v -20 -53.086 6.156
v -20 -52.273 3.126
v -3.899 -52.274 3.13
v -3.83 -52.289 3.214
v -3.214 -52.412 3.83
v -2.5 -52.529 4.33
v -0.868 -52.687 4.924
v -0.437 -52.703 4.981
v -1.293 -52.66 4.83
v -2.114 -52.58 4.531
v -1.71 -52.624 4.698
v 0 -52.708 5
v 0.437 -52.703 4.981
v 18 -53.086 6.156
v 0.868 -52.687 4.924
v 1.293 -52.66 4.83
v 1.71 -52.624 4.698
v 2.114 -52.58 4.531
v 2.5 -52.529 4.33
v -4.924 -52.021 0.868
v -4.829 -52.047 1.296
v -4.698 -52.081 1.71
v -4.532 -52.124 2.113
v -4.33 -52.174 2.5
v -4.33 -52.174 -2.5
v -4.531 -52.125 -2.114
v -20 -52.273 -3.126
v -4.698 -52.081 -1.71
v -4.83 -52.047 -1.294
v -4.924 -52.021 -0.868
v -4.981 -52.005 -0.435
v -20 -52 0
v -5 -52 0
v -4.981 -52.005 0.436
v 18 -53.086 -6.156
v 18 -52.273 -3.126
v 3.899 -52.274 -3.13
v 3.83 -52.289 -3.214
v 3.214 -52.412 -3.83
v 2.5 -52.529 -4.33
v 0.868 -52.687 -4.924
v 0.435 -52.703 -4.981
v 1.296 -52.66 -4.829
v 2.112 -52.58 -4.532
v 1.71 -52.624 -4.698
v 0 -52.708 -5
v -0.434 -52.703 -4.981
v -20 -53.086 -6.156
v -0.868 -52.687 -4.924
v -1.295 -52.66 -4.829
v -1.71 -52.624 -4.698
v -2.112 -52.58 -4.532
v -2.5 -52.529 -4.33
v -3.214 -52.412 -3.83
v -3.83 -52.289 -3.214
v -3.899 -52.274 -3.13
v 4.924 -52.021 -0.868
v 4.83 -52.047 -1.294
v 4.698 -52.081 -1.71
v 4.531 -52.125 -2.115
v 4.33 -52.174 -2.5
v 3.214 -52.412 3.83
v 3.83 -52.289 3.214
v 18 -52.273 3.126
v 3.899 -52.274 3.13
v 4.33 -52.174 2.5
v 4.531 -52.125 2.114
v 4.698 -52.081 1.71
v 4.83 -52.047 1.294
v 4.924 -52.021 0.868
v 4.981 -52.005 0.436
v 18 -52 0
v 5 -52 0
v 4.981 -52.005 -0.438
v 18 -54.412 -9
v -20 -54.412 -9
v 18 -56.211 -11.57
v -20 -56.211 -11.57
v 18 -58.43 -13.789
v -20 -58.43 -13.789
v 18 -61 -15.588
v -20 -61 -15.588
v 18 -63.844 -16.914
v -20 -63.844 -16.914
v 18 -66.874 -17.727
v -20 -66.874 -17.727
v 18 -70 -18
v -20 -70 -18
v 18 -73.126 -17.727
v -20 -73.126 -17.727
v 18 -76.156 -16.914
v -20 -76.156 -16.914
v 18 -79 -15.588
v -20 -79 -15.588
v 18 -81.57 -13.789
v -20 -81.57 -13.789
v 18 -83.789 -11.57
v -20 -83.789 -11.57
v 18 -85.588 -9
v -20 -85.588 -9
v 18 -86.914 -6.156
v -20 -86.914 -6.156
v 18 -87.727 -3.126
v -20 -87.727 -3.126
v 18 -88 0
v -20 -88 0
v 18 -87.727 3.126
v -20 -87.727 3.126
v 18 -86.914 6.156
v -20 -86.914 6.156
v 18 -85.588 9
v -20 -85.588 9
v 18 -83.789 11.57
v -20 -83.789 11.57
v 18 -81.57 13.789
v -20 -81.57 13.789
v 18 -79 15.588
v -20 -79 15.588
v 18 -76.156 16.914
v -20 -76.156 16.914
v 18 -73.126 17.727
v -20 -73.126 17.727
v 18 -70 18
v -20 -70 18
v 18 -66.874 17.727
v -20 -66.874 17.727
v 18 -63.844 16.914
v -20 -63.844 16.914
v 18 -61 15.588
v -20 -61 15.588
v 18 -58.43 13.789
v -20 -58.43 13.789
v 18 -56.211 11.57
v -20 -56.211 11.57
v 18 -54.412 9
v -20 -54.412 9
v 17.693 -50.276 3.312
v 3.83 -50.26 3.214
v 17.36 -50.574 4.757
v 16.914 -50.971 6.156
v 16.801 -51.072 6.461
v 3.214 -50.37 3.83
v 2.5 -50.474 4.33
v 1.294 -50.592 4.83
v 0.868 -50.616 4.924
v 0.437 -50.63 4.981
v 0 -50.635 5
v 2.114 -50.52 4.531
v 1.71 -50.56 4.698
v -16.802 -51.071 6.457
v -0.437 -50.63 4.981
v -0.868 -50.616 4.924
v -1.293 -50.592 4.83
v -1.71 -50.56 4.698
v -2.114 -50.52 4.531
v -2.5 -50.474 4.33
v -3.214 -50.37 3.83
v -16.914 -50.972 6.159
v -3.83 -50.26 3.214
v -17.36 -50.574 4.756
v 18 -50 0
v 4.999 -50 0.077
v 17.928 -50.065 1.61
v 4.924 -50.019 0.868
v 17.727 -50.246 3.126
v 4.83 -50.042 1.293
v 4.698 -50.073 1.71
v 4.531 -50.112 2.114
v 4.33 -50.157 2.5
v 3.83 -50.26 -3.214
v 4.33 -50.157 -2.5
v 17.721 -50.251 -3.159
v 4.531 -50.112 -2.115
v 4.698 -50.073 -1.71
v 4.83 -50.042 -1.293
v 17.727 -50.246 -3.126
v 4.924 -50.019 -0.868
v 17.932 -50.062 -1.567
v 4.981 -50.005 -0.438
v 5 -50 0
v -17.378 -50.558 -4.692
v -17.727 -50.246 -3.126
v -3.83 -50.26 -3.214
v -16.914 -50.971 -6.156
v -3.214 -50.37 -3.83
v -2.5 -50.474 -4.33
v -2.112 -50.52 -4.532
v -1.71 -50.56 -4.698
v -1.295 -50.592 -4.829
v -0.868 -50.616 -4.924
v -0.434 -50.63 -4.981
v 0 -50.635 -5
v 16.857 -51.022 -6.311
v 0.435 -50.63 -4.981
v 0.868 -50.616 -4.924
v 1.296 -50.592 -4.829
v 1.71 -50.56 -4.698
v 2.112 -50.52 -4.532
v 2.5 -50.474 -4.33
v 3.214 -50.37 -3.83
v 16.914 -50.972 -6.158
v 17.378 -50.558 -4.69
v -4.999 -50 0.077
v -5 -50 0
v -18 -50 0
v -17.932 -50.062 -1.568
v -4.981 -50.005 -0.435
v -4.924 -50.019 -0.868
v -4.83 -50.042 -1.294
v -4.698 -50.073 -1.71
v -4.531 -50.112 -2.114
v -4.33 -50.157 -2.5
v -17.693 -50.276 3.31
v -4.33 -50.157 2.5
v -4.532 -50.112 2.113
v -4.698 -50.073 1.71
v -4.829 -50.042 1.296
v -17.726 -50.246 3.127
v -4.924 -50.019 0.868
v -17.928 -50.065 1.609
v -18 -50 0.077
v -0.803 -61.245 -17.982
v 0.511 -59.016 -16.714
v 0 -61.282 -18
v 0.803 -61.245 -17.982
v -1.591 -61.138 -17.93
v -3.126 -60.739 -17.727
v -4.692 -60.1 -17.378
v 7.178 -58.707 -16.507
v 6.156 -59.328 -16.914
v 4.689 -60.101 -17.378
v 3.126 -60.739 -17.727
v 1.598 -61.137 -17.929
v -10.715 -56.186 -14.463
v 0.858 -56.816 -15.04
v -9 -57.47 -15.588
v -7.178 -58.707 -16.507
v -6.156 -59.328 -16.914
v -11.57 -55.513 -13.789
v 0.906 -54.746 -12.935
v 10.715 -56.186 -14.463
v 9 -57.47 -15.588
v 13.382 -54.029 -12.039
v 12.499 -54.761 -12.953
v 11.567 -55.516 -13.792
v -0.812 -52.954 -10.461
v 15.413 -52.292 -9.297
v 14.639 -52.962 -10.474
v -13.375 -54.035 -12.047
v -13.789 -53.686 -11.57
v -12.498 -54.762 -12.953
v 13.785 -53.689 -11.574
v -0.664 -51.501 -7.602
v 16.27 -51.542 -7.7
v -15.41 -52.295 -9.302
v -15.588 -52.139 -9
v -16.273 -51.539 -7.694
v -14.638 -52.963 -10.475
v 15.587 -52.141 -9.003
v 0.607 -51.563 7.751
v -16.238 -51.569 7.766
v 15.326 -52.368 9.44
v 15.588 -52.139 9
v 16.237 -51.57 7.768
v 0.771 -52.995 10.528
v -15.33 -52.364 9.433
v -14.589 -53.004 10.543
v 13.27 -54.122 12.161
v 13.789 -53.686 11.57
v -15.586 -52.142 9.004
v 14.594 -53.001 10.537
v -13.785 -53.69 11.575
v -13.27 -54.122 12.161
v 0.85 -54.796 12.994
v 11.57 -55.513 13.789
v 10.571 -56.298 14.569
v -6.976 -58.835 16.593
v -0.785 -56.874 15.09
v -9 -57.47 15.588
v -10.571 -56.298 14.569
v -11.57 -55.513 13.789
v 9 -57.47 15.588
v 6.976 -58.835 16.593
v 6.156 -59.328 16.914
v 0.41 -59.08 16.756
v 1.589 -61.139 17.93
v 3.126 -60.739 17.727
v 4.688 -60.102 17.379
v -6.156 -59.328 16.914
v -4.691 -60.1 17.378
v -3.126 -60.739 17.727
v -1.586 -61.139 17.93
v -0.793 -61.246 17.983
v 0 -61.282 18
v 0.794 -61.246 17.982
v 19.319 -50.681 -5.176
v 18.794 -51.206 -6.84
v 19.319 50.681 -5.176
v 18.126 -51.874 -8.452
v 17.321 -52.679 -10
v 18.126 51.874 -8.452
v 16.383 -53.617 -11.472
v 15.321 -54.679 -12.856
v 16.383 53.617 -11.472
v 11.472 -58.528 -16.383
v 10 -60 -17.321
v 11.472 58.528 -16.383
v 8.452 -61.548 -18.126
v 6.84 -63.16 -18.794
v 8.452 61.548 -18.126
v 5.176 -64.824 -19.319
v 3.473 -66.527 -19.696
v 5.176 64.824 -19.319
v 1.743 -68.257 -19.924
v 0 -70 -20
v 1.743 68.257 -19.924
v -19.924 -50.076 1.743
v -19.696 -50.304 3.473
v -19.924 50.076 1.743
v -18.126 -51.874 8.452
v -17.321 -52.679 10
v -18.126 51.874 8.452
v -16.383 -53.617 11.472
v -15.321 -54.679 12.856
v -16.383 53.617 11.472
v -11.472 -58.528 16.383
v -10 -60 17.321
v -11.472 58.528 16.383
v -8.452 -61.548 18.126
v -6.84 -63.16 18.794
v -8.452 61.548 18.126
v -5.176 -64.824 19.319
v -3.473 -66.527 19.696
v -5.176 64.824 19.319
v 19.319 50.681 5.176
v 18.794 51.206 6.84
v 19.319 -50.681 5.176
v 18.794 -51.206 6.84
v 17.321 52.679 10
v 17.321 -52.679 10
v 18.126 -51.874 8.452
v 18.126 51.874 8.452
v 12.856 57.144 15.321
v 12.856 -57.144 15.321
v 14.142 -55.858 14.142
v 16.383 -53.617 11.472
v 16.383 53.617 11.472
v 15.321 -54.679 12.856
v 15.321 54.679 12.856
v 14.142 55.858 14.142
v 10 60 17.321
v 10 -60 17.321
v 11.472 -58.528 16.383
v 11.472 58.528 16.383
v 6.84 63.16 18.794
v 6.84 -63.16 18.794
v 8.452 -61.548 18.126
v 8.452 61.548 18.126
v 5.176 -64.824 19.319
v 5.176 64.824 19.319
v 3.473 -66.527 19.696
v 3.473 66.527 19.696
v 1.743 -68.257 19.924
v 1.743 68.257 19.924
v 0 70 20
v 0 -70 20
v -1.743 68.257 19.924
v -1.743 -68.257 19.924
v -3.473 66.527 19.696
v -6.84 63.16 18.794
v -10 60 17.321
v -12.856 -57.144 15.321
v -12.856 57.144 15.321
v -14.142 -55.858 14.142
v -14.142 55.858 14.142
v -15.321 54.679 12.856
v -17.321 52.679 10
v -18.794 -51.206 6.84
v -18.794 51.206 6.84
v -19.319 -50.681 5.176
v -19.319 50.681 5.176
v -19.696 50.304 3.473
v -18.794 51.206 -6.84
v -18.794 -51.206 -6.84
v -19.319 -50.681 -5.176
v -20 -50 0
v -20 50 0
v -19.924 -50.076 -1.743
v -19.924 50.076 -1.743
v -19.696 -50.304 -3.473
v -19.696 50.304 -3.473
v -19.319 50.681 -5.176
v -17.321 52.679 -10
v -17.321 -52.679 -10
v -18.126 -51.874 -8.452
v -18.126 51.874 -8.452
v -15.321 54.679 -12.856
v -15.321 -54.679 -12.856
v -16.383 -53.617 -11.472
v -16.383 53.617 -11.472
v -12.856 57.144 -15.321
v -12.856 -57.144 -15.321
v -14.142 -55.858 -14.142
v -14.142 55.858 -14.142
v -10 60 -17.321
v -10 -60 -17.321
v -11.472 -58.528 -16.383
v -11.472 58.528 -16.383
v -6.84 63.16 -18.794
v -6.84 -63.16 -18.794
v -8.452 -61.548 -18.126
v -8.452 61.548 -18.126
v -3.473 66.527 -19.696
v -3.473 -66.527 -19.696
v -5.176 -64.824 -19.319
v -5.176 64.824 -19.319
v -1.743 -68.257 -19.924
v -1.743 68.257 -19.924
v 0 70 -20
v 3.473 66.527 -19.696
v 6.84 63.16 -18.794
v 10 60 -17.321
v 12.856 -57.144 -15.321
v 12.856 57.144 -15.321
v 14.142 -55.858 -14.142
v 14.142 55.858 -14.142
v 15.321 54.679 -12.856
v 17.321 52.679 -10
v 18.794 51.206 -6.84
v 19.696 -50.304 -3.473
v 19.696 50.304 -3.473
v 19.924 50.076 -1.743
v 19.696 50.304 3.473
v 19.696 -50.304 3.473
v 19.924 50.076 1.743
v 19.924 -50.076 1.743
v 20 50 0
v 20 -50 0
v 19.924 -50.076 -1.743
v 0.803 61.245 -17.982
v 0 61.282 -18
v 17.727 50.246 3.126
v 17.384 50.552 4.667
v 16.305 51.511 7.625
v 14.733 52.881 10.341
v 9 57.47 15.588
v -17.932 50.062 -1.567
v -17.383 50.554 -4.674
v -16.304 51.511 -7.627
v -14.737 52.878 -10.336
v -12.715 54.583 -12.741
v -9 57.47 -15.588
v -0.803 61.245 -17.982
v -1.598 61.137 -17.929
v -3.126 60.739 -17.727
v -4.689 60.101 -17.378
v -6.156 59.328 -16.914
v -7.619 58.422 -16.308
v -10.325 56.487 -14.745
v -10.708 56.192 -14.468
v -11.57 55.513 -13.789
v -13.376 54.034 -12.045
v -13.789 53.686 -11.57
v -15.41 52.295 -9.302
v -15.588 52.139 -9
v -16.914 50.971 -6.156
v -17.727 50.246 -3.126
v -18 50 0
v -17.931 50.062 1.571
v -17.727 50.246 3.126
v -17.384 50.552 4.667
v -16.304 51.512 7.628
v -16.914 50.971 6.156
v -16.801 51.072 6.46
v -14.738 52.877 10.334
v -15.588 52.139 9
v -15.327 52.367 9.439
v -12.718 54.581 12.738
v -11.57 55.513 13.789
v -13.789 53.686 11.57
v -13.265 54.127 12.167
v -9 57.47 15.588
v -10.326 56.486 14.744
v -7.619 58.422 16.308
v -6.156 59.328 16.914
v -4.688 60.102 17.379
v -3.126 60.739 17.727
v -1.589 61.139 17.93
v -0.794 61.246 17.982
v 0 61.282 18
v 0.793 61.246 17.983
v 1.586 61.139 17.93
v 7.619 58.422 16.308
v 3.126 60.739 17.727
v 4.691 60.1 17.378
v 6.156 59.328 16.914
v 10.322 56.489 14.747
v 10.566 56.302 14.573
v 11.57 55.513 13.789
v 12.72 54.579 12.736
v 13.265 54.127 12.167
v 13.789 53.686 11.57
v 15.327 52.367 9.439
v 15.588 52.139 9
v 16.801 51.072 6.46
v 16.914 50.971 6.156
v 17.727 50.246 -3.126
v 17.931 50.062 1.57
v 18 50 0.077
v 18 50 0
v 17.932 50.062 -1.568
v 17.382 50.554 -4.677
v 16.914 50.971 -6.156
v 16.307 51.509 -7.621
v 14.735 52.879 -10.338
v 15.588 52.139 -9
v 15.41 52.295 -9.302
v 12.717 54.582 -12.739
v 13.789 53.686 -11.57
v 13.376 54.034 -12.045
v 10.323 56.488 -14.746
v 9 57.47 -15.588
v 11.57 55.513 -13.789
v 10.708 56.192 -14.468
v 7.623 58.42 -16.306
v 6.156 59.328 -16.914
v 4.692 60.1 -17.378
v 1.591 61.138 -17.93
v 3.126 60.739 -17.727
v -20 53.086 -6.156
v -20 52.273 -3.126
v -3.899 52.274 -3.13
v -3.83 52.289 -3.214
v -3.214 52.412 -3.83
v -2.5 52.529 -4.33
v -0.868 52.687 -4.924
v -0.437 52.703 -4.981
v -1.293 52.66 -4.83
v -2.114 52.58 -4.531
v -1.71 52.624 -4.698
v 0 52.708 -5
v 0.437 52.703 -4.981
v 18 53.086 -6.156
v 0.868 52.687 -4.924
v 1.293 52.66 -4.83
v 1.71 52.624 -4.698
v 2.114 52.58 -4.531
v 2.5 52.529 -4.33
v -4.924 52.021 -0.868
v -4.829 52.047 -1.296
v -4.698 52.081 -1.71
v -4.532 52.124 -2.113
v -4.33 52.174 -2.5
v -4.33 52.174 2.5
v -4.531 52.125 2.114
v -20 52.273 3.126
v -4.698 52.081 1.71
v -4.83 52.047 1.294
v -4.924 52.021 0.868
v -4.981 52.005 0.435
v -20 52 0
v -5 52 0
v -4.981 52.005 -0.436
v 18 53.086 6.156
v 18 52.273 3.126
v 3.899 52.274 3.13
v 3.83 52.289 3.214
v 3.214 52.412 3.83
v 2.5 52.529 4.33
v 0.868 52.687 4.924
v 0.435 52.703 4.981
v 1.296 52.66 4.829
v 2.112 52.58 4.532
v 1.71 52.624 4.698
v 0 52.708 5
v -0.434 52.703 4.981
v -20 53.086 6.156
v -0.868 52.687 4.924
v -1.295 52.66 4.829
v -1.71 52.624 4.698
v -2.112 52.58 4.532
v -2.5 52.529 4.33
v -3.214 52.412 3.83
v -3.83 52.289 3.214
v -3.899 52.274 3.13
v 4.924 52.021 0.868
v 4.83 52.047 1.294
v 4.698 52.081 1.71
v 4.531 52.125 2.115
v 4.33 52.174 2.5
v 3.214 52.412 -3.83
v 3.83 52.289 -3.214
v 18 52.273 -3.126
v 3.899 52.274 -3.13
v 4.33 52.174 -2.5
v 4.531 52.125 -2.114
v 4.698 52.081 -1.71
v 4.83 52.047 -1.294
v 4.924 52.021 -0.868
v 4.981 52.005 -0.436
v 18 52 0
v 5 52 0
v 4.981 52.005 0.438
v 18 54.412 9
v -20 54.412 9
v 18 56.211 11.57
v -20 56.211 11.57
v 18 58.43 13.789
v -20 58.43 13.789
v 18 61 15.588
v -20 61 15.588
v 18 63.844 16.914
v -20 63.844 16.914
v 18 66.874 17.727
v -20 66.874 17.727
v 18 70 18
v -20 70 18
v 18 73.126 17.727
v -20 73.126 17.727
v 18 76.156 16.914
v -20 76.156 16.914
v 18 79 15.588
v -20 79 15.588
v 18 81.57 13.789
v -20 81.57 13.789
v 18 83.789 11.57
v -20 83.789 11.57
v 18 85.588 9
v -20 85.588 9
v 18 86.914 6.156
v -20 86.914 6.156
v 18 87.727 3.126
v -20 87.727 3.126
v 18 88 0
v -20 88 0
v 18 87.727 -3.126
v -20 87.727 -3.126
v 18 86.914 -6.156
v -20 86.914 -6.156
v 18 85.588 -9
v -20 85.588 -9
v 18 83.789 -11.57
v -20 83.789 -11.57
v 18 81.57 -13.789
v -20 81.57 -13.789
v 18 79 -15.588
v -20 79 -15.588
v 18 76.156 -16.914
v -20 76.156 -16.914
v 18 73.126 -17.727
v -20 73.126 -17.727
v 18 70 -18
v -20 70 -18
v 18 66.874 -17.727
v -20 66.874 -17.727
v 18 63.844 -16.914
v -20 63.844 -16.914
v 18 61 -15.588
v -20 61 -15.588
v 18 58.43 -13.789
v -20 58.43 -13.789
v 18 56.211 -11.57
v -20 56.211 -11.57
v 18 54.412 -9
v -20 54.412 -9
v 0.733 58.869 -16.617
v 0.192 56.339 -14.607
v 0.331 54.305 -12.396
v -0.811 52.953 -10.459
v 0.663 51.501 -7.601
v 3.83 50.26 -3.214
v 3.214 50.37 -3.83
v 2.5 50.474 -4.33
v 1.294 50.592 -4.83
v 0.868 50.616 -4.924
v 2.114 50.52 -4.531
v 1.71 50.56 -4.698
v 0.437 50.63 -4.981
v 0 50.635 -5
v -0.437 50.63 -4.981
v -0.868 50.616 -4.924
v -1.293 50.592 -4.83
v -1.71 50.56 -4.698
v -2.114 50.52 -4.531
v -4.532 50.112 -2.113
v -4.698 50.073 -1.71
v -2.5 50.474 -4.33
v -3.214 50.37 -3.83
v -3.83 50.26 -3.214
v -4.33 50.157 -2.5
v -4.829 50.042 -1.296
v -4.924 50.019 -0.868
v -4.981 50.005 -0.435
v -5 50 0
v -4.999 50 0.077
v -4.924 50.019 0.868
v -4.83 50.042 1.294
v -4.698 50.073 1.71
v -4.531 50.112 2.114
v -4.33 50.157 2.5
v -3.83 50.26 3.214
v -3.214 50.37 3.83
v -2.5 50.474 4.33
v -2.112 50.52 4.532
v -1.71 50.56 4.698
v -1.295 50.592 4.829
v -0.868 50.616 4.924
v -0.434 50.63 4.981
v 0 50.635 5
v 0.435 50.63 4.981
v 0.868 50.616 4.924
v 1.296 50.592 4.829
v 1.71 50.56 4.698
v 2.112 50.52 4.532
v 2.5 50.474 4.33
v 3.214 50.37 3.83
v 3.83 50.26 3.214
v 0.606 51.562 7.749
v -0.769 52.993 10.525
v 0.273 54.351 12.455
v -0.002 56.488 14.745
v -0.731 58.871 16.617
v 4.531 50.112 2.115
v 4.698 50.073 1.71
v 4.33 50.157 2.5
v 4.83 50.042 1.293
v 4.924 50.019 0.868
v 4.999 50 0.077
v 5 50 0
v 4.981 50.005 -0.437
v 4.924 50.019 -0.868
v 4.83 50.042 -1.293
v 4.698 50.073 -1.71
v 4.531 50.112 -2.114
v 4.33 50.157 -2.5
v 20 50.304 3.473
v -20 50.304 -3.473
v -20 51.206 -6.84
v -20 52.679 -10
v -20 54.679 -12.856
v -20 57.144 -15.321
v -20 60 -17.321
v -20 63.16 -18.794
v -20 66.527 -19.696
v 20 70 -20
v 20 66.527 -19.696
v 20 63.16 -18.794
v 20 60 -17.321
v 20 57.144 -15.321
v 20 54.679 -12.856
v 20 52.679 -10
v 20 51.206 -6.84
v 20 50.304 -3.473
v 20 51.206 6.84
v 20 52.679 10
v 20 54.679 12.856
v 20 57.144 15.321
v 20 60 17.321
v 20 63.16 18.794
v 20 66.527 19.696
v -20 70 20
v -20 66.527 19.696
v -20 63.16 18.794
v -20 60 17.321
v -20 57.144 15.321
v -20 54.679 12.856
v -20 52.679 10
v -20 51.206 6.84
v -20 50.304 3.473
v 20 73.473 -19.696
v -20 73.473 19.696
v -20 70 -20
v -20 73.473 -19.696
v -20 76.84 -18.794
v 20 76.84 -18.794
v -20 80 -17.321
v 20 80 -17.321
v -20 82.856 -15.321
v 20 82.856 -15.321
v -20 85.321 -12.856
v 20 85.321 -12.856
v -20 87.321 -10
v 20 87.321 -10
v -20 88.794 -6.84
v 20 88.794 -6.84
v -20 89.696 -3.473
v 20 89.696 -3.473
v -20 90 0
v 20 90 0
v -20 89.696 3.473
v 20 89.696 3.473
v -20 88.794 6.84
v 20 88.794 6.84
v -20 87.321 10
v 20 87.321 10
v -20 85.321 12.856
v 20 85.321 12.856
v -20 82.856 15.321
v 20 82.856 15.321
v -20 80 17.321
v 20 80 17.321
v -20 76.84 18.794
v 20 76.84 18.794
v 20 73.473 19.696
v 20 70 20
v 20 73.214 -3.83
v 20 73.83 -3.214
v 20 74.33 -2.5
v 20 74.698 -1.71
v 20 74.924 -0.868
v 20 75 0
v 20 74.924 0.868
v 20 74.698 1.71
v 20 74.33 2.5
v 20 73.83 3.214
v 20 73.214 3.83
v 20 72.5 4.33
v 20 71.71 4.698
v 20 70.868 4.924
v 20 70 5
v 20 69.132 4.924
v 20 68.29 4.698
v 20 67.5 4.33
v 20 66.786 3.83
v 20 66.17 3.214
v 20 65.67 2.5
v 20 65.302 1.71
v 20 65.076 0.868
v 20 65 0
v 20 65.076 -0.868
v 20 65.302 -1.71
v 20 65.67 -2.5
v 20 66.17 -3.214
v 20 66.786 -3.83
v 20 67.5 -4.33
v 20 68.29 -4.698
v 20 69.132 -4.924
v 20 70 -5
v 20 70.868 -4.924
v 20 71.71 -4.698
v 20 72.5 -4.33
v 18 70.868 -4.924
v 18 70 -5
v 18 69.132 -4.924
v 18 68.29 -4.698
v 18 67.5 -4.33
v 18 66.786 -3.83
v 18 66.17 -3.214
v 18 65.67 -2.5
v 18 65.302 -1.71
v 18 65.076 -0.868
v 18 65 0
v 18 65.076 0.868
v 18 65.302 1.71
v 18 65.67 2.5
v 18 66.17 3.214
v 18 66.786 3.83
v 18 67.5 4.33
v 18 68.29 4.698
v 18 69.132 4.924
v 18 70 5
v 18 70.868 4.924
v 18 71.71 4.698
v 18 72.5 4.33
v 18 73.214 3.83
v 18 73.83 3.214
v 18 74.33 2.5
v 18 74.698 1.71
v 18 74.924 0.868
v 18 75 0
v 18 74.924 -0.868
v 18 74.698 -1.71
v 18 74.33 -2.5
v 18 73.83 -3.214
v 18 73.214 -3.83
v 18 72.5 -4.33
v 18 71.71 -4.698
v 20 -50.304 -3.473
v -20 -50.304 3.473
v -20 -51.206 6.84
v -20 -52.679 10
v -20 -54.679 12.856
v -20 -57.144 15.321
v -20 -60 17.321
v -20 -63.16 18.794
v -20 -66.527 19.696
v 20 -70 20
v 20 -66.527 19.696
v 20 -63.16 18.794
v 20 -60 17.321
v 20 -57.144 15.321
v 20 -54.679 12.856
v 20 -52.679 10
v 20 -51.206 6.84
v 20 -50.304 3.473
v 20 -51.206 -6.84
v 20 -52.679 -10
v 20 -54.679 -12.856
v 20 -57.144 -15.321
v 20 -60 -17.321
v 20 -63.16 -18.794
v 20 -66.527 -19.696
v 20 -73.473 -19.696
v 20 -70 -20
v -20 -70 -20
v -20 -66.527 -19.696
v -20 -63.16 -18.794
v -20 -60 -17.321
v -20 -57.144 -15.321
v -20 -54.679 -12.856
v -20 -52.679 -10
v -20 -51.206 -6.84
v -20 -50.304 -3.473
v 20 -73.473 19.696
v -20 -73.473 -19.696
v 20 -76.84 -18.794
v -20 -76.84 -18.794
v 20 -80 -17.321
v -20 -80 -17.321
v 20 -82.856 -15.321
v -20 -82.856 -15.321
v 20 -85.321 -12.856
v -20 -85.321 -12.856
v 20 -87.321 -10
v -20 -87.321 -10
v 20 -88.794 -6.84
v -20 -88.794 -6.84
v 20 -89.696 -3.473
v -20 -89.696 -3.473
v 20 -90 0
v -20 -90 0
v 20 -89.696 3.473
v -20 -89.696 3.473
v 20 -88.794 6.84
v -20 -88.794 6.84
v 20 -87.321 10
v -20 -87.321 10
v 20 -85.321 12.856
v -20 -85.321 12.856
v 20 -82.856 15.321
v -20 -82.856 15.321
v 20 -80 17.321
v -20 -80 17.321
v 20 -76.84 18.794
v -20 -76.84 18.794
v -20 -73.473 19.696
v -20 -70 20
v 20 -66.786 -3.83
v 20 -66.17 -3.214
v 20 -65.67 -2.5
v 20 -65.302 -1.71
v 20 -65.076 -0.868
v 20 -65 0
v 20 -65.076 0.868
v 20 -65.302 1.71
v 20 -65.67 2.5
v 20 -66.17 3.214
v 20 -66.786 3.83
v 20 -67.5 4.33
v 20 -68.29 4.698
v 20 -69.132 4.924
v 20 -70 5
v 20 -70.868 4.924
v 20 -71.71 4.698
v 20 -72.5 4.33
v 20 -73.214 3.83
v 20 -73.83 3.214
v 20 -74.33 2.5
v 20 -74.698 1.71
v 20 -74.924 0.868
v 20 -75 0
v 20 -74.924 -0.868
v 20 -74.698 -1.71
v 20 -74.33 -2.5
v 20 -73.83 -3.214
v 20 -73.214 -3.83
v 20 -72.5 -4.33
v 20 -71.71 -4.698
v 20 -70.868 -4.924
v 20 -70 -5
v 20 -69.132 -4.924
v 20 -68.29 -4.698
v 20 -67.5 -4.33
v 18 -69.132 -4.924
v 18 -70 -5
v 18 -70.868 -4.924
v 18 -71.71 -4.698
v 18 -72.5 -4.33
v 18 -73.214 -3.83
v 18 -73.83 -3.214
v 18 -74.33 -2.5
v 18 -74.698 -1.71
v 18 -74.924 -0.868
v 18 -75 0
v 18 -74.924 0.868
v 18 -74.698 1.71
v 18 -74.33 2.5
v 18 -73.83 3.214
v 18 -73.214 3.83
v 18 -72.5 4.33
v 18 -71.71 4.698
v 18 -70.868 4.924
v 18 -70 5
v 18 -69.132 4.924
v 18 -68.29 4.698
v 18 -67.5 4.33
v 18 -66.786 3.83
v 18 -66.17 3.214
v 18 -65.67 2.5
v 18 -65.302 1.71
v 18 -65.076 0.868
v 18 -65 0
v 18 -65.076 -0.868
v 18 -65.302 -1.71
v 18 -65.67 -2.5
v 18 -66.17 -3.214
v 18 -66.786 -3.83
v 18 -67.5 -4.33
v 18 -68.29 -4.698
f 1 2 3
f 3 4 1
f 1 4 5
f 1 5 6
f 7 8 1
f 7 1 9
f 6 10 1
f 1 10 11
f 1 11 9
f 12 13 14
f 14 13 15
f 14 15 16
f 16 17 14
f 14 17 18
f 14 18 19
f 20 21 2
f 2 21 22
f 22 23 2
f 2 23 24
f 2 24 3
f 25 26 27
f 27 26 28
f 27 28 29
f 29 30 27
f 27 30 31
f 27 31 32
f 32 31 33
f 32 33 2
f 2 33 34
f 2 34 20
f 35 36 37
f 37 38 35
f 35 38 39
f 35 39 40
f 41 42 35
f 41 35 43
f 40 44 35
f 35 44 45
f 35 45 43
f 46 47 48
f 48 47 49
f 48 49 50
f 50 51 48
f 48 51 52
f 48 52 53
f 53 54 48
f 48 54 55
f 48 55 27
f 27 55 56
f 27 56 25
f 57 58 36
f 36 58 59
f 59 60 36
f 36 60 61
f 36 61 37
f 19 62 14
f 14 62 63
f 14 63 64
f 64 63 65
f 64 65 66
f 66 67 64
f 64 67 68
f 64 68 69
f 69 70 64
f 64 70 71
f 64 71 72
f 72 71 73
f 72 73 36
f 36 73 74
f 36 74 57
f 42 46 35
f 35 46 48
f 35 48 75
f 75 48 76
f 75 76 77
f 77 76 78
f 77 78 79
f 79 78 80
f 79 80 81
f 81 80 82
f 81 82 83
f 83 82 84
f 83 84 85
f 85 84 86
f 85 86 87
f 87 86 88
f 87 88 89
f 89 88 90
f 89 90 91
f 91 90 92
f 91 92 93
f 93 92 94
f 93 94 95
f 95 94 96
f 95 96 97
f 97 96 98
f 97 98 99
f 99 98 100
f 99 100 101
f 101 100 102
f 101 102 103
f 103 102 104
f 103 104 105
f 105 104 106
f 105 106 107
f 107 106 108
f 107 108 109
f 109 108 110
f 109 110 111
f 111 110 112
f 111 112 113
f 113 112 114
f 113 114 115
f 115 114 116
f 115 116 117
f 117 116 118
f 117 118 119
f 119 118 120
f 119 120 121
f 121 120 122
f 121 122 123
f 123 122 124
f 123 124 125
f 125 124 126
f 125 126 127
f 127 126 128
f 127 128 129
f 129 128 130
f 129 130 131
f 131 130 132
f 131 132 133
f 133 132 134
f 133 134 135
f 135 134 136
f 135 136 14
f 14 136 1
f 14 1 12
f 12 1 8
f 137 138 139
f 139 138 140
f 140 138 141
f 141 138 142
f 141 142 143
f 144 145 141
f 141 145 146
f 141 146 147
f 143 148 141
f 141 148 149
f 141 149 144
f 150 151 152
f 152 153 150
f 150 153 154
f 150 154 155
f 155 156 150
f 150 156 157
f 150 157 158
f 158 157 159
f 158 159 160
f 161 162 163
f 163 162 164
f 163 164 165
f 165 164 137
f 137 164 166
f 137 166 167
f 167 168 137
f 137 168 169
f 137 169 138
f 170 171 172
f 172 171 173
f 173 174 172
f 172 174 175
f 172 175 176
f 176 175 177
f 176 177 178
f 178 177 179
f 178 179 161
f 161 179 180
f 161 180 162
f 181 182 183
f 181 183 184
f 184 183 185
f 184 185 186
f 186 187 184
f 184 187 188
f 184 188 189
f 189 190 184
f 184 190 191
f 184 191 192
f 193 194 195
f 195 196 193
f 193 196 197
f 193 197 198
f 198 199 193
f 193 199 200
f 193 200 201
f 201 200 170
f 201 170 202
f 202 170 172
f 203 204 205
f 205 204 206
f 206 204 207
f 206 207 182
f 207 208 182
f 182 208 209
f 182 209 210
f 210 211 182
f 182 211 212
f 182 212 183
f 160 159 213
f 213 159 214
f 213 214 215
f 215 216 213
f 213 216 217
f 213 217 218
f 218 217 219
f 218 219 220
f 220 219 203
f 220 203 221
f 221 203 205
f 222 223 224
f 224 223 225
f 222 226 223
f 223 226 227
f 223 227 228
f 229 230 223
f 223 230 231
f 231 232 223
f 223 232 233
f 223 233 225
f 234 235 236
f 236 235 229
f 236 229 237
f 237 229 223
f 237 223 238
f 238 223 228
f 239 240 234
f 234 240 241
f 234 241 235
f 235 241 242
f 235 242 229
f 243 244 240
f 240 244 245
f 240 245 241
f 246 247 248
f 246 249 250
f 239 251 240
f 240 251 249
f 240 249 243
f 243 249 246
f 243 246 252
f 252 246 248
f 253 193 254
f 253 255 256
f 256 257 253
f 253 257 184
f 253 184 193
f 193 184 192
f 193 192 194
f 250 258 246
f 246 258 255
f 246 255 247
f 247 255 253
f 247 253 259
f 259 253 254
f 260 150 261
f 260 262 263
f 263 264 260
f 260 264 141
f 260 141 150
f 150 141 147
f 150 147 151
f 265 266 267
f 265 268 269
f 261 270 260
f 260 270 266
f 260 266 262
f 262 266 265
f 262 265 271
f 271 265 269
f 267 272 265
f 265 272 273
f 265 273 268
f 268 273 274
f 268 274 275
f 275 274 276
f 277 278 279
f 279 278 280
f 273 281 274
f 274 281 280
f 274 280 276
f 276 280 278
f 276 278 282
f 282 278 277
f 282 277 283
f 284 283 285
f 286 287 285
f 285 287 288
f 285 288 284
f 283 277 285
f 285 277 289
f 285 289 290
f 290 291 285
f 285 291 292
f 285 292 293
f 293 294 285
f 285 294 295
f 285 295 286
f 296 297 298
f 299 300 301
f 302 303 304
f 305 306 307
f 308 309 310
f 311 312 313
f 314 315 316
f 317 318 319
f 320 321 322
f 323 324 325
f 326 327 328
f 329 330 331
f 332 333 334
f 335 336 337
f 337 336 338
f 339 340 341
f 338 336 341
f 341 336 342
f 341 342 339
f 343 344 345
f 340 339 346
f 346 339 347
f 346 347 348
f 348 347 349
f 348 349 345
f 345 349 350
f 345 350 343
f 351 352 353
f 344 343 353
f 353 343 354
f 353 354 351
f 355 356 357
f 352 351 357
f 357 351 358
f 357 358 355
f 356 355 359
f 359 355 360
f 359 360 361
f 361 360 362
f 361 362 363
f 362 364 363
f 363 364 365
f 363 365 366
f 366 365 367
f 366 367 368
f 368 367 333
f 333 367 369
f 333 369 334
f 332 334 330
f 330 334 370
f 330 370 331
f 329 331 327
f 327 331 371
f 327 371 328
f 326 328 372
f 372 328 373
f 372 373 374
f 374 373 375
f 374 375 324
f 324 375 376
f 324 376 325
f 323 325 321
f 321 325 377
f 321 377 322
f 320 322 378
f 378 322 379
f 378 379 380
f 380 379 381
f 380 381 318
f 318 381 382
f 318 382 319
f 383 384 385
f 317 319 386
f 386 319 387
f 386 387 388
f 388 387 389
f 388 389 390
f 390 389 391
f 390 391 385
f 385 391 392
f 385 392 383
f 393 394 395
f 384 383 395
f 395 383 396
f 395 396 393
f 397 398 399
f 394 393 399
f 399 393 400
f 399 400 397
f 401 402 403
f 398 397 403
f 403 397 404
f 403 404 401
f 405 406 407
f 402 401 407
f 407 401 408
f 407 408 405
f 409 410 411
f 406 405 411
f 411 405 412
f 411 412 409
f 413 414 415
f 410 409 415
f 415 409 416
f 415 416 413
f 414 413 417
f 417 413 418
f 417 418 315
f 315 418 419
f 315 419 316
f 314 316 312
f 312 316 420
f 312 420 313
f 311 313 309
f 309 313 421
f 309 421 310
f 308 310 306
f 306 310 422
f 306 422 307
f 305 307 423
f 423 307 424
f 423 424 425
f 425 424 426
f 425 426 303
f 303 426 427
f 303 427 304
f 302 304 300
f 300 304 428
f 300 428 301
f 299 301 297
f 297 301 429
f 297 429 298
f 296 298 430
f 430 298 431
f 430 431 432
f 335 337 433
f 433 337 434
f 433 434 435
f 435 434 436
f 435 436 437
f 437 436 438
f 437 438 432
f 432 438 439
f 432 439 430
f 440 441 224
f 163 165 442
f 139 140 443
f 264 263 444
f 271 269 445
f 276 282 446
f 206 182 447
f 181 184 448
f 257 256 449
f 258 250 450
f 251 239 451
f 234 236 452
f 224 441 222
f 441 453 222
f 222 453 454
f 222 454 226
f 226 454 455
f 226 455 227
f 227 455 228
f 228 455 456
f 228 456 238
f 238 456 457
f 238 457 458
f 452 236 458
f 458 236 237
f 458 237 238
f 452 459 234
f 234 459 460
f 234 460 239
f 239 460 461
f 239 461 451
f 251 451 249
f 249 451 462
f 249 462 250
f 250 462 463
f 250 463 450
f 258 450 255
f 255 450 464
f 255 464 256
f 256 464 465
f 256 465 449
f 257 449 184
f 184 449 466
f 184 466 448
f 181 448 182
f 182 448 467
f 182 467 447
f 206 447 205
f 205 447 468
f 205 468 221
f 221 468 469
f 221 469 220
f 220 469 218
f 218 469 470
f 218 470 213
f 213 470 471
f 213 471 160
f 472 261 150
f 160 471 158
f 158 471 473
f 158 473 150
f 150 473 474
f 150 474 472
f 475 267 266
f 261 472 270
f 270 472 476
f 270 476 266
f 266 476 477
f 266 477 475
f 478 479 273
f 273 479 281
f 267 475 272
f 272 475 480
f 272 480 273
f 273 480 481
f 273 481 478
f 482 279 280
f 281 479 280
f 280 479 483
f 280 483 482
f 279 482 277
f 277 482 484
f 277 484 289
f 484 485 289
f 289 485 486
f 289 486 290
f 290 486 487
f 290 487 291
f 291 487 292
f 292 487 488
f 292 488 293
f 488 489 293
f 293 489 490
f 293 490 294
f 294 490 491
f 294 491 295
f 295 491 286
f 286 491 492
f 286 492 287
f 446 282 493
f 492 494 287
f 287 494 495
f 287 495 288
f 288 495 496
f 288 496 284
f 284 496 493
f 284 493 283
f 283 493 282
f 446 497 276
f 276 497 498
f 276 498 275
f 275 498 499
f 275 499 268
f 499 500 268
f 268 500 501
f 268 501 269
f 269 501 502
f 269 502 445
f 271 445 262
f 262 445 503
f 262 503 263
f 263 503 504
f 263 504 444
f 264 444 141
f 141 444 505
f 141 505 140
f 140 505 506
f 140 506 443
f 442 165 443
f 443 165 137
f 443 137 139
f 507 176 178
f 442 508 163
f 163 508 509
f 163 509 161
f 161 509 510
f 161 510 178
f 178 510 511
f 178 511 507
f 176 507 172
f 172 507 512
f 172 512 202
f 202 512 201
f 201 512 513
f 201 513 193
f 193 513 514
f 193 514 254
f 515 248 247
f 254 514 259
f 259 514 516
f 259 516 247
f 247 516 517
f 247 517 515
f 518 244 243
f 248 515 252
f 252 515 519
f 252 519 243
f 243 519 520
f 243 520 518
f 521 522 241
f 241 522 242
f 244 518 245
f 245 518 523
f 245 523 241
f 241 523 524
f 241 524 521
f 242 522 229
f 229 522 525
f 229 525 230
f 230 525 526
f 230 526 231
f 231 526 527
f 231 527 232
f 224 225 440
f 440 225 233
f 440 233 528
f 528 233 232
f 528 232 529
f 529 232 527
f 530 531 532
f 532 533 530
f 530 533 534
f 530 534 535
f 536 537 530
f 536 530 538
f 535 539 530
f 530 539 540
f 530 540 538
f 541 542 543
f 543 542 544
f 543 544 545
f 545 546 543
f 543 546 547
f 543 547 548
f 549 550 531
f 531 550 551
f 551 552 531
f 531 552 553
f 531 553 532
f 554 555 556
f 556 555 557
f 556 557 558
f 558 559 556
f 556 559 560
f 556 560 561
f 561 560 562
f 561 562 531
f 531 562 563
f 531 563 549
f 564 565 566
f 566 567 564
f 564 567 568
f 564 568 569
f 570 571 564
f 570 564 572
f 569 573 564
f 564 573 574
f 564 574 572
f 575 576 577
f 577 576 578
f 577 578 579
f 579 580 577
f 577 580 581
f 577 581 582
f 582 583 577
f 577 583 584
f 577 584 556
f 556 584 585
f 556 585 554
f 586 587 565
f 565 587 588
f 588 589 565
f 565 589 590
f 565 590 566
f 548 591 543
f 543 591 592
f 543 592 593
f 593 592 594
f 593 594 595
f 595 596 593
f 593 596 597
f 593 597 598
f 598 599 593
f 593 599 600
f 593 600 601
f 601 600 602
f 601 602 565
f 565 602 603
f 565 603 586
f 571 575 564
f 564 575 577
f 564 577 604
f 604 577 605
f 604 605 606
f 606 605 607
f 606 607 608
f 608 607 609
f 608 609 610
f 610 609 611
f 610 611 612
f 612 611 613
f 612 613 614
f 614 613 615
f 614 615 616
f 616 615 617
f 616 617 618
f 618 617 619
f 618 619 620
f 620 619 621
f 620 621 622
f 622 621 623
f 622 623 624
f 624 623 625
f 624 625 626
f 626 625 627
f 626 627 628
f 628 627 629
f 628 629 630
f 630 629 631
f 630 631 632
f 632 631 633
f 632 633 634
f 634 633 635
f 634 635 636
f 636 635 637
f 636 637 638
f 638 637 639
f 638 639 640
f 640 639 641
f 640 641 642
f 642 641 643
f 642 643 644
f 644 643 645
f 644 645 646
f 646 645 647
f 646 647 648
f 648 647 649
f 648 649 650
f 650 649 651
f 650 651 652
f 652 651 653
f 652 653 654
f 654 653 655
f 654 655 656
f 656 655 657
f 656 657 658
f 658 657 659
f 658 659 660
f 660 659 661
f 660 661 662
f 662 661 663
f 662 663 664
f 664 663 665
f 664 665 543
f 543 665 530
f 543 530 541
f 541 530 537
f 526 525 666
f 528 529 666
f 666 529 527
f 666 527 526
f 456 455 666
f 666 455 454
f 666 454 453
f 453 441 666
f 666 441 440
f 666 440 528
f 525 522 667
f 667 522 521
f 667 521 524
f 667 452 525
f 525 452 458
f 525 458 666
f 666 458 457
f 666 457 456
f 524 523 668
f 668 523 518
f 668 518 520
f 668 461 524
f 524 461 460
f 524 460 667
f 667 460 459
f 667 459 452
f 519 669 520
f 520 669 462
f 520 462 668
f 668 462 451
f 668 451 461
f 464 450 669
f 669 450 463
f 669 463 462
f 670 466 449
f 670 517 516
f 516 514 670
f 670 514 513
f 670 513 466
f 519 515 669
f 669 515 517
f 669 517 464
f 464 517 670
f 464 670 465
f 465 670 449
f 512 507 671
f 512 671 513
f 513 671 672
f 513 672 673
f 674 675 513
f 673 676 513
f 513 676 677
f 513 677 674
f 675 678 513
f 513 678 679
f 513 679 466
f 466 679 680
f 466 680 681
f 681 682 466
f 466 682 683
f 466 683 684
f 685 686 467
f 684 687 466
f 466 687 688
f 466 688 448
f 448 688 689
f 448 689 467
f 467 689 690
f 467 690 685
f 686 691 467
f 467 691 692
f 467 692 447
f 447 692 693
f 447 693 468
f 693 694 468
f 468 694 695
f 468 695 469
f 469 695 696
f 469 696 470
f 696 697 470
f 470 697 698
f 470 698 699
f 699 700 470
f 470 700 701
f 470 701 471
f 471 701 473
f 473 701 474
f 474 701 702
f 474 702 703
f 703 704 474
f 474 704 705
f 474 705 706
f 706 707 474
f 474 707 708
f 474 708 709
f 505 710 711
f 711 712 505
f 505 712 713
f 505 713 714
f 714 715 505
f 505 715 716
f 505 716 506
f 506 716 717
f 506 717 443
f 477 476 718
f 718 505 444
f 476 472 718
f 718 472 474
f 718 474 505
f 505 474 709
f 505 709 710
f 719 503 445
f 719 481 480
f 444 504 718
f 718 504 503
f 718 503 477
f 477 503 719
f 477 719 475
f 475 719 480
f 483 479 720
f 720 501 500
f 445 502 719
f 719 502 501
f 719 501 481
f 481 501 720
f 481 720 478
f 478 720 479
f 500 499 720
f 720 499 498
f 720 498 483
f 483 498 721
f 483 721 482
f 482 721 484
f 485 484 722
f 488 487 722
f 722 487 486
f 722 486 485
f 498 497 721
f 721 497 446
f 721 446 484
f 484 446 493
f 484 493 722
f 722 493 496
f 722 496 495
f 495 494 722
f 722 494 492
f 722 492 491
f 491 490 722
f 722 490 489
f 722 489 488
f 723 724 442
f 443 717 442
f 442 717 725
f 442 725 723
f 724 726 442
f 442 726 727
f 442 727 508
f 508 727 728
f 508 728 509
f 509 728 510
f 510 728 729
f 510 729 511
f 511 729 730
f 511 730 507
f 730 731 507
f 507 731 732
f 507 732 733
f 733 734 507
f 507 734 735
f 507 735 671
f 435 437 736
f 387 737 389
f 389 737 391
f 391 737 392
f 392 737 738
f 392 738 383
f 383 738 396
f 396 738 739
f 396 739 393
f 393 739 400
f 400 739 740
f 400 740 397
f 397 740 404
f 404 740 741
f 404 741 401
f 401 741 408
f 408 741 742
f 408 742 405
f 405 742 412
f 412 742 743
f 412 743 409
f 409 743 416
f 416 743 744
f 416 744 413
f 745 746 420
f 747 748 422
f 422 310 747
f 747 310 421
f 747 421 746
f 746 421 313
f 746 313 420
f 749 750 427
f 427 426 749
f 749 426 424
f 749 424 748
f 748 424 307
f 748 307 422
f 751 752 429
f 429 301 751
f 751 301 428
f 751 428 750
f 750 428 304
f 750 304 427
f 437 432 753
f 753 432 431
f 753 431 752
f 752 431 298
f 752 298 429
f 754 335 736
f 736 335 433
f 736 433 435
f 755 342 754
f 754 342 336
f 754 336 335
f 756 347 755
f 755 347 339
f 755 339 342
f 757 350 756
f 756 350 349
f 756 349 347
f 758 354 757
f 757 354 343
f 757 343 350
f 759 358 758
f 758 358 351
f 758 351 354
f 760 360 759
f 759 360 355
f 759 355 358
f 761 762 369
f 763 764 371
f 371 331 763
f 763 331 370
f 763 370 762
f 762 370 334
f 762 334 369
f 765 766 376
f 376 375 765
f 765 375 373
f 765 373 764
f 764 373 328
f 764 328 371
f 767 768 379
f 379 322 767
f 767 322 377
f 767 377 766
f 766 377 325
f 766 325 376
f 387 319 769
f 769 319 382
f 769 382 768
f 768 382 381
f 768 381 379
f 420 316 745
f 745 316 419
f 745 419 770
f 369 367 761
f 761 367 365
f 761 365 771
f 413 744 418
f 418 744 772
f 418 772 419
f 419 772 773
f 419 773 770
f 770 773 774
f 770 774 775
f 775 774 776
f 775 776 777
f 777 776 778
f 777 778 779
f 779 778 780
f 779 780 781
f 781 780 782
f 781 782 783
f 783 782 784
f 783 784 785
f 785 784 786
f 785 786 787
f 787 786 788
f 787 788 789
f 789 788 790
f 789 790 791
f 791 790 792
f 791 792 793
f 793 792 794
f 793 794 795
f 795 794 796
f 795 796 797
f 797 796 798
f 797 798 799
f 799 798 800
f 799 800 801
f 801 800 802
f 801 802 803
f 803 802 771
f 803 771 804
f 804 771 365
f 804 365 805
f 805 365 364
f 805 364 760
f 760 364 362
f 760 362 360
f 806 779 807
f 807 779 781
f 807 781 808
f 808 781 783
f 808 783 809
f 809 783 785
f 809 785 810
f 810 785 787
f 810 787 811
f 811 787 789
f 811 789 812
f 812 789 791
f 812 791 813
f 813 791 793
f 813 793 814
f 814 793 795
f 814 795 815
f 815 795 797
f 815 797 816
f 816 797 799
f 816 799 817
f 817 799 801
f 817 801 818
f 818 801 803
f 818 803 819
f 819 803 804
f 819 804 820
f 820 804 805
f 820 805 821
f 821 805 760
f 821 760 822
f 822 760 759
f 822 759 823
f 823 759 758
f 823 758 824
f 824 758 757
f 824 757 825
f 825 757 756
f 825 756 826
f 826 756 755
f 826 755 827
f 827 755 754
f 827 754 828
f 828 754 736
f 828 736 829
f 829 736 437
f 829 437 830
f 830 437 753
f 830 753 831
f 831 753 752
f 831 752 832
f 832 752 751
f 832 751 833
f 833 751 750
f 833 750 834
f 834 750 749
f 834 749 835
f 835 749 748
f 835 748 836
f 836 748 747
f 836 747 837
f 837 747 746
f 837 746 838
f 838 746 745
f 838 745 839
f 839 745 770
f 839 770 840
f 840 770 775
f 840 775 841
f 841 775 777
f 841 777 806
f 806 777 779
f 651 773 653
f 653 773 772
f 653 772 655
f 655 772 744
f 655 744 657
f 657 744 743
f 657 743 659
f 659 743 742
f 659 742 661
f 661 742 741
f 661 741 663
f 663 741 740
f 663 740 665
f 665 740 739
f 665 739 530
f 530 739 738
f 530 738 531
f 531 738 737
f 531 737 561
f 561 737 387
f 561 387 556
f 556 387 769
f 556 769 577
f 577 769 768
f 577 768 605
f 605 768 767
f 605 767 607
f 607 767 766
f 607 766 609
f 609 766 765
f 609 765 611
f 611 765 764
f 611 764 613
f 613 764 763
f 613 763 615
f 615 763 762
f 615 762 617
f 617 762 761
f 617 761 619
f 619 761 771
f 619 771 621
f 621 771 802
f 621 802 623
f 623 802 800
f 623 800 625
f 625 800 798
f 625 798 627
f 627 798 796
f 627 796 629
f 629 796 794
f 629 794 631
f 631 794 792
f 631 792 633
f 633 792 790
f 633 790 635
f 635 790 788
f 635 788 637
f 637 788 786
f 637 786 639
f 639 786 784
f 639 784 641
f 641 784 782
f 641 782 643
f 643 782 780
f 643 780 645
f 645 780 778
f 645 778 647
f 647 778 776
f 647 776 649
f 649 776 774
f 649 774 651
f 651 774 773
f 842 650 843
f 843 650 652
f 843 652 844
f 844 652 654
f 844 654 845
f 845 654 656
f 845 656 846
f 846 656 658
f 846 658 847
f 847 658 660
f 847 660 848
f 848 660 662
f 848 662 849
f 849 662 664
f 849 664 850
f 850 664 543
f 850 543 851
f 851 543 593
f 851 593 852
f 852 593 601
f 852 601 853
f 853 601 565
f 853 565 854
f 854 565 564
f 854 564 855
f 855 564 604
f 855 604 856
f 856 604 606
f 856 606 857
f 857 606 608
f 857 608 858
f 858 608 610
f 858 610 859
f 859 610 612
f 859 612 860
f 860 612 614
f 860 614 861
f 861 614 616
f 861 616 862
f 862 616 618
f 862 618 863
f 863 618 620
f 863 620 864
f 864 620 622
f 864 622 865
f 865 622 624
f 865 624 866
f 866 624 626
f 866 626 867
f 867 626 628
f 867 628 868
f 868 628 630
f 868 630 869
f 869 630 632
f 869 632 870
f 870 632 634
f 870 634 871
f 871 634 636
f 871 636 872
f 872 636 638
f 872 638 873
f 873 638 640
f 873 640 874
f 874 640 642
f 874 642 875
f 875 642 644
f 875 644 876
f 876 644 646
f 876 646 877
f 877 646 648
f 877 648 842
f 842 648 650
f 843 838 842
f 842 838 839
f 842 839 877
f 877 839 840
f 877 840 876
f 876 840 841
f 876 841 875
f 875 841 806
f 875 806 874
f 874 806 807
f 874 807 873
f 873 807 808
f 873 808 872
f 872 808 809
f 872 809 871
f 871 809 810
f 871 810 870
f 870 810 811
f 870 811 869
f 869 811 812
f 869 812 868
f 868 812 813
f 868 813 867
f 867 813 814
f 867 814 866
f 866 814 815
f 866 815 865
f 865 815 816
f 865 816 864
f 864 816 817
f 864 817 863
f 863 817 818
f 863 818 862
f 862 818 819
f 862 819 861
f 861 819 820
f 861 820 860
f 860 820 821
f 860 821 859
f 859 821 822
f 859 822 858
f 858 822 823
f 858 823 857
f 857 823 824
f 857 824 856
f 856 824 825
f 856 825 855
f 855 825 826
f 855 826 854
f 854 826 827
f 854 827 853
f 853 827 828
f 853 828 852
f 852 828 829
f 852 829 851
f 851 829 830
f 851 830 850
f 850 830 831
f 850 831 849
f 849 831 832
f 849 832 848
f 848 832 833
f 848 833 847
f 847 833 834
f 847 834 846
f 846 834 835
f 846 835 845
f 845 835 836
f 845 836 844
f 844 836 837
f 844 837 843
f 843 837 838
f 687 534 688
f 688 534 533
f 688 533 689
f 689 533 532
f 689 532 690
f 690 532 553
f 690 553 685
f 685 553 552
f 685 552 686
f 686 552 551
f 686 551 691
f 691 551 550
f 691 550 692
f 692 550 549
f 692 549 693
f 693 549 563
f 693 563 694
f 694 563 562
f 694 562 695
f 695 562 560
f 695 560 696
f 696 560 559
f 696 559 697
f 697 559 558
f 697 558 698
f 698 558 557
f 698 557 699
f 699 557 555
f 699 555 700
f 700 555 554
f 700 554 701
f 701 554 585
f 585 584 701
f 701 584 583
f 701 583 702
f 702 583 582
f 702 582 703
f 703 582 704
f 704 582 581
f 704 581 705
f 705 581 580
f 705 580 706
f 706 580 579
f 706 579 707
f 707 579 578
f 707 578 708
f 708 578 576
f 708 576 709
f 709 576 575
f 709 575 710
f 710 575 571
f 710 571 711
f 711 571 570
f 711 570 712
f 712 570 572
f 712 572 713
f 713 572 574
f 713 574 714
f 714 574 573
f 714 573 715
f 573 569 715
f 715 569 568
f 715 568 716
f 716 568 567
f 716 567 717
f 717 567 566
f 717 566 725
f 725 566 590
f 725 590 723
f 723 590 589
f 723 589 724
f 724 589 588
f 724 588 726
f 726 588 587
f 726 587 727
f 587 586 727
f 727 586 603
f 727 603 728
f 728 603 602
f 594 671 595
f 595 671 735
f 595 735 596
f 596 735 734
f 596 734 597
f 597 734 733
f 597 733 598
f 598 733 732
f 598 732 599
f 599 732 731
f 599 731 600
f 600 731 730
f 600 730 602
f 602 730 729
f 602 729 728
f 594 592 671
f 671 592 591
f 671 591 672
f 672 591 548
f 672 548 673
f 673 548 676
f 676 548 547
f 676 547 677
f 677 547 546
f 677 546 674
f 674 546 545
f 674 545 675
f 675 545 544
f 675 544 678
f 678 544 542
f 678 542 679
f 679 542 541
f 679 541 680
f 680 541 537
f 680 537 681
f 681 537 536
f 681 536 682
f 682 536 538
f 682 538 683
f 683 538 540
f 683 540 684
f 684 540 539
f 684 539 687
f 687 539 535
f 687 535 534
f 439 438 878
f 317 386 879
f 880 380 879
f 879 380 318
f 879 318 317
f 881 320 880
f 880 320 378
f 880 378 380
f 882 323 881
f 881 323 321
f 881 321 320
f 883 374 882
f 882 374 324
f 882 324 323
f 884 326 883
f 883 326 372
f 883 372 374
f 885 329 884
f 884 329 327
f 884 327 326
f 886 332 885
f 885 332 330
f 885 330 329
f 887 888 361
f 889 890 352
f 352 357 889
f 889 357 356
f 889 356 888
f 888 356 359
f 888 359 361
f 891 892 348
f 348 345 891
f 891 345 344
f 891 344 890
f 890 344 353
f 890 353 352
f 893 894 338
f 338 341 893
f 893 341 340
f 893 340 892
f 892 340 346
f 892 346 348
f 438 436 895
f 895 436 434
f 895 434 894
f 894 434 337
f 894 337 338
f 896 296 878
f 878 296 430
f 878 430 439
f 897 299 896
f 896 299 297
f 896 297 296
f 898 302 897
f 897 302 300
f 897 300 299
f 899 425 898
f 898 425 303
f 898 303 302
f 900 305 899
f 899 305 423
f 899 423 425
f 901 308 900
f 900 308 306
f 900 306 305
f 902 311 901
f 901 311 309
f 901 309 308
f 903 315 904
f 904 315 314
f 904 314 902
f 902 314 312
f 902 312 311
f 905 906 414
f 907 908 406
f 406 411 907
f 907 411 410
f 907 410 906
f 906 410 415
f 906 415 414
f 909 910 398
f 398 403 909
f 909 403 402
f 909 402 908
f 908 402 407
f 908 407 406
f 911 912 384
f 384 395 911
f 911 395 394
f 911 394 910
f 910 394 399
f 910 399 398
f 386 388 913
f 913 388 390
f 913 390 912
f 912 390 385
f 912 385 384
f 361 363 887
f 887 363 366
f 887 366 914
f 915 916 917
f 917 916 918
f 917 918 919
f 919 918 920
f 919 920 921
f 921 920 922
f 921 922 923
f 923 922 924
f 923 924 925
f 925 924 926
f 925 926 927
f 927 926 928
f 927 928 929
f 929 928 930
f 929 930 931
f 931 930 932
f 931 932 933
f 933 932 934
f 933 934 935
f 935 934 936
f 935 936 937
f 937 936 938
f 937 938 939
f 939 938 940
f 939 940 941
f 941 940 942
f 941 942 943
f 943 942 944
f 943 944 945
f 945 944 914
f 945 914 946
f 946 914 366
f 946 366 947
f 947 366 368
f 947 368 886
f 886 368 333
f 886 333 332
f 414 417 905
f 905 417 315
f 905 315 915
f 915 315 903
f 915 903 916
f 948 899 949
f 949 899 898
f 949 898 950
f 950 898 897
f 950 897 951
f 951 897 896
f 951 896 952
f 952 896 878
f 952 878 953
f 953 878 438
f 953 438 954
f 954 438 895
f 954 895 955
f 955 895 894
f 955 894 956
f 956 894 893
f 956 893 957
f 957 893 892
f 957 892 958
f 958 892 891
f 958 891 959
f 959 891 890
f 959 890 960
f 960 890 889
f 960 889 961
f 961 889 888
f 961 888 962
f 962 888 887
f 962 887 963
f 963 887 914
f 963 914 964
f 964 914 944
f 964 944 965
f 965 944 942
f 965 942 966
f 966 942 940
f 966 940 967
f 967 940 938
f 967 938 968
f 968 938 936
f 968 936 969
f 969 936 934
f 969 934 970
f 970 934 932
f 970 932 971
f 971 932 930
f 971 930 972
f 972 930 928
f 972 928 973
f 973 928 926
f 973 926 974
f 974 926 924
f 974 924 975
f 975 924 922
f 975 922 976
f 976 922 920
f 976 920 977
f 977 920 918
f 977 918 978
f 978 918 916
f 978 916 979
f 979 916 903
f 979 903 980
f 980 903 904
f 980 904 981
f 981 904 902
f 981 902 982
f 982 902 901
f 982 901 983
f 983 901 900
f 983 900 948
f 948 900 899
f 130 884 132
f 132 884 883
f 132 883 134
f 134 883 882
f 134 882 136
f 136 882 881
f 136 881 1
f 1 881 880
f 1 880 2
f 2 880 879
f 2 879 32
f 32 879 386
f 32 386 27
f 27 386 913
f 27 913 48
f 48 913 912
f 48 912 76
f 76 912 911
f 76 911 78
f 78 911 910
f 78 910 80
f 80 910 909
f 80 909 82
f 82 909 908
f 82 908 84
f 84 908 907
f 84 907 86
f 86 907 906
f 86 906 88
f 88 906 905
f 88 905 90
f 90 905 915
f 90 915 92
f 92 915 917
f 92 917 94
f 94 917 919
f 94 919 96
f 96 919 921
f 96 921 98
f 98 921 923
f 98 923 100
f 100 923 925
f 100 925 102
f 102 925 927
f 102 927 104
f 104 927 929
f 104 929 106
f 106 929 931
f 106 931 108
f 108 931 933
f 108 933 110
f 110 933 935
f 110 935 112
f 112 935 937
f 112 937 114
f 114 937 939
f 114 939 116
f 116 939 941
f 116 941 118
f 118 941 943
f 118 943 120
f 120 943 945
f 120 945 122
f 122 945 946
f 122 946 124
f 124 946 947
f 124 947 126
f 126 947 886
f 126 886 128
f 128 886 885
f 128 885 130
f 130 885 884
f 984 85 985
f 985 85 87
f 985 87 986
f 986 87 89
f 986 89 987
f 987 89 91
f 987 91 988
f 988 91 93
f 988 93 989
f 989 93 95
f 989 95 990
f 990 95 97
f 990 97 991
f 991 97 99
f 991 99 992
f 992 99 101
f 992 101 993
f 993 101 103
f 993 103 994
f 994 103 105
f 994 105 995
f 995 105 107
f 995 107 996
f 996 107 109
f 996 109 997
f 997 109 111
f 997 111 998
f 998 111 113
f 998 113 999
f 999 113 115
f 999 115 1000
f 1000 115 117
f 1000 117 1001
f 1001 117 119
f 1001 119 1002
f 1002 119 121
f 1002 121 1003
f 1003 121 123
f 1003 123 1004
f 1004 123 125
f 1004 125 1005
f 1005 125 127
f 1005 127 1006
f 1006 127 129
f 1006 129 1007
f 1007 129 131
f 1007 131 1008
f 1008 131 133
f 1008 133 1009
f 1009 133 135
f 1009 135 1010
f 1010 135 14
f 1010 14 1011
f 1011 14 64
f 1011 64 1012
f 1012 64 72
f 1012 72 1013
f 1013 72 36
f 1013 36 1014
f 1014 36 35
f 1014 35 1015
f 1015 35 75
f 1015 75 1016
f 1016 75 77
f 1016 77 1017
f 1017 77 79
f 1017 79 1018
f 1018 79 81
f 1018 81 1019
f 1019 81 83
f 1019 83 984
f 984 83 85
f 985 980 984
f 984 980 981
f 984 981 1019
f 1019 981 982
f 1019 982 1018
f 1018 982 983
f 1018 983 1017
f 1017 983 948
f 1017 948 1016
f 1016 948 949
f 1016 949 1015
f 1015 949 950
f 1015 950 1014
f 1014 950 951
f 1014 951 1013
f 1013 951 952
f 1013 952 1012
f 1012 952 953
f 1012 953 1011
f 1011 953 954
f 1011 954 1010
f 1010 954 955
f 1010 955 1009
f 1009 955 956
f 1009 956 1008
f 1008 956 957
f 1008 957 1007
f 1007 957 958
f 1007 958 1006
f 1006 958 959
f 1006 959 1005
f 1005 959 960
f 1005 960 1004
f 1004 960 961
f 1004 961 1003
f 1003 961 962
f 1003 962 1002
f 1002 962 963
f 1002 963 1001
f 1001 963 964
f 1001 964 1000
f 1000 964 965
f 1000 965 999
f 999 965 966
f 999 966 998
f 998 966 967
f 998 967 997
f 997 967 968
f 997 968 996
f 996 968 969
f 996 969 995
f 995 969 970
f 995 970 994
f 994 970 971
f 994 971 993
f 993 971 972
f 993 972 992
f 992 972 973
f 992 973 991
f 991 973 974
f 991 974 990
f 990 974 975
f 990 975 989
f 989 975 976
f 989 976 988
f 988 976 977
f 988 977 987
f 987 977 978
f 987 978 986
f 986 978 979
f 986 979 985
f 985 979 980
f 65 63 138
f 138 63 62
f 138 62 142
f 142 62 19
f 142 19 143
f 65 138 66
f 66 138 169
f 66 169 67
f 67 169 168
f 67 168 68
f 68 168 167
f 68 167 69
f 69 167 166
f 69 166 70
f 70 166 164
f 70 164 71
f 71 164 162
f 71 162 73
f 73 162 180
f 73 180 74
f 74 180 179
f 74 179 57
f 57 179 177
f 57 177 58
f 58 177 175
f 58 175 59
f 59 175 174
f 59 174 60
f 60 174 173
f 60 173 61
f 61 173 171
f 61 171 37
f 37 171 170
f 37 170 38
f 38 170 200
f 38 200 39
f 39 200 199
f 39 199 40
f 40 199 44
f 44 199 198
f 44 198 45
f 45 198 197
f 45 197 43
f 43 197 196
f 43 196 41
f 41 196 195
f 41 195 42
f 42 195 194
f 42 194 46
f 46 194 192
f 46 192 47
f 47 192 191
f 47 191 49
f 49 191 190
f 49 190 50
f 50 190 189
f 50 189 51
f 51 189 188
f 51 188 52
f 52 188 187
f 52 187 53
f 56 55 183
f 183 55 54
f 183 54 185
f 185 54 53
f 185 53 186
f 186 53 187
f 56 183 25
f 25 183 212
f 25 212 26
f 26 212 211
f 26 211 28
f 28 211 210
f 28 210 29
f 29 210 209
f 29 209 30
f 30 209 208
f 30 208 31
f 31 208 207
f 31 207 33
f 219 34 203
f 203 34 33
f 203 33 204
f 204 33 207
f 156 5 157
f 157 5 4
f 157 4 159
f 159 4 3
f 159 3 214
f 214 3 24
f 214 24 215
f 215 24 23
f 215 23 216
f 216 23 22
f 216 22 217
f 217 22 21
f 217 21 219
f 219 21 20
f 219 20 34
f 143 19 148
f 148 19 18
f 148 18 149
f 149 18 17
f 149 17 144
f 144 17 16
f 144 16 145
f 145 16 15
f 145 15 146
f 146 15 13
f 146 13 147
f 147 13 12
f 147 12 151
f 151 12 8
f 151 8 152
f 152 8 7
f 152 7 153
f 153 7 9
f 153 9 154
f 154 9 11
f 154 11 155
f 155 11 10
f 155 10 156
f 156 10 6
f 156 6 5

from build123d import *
from build123d.topology import SkipClean

# Parameters (mm, degrees)
SKETCH1_R           = 20
SKETCH1_R_2         = 18
BOSS_EXTRUDE1_DEPTH = 70
SKETCH2_R           = 20
CUT_EXTRUDE1_DEPTH  = 20
SKETCH3_R           = 20
SKETCH3_R_2         = 18
BOSS_EXTRUDE2_DEPTH = 20
BOSS_EXTRUDE3_START = -2
SKETCH4_R           = 18
SKETCH4_R_2         = 5
BOSS_EXTRUDE3_DEPTH = 2
SKETCH5_R           = 5
CUT_EXTRUDE2_DEPTH  = 70


with BuildPart() as part:
    # Sketch1 → Boss-Extrude1 (new body)
    with BuildSketch(Plane(origin=(0, 0, 0), x_dir=(1, 0, 0), z_dir=(0, 1, 0))):
        with Locations(Location((0, 0, 0), (0, 0, 270))):
            Circle(SKETCH1_R)
        with Locations(Location((0, 0, 0), (0, 0, 270))):
            Circle(SKETCH1_R_2, mode=Mode.SUBTRACT)
    boss_extrude1 = extrude(amount=BOSS_EXTRUDE1_DEPTH)

    # Sketch2 → Cut-Extrude1 (cut, symmetric)
    with BuildSketch(Plane(origin=(0, 0, 0), x_dir=(0, 0, -1), z_dir=(1, 0, 0))):
        with Locations((0, 70)):
            Circle(SKETCH2_R)
    cut_extrude1 = extrude(amount=CUT_EXTRUDE1_DEPTH, both=True, mode=Mode.SUBTRACT)

    # Sketch3 → Boss-Extrude2 (add, symmetric)
    with SkipClean():  # the faces are left unmerged after this step: merging them gives an invalid solid
        with BuildSketch(Plane(origin=(0, 0, 0), x_dir=(0, 0, -1), z_dir=(1, 0, 0))):
            with Locations((0, 70)):
                Circle(SKETCH3_R)
            with Locations((0, 70)):
                Circle(SKETCH3_R_2, mode=Mode.SUBTRACT)
        boss_extrude2 = extrude(amount=BOSS_EXTRUDE2_DEPTH, both=True)

    # Sketch4 → Boss-Extrude3 (add)
    with SkipClean():  # the faces are left unmerged after this step: merging them gives an invalid solid
        with BuildSketch(Plane(origin=(20, 0, 0), x_dir=(0, 0, -1), z_dir=(1, 0, 0)).offset(BOSS_EXTRUDE3_START)):
            with Locations((0, 70)):
                Circle(SKETCH4_R)
            with Locations((0, 70)):
                Circle(SKETCH4_R_2, mode=Mode.SUBTRACT)
        boss_extrude3 = extrude(amount=BOSS_EXTRUDE3_DEPTH)

    # Sketch5 → Cut-Extrude2 (cut)
    with SkipClean():  # the faces are left unmerged after this step: merging them gives an invalid solid
        with BuildSketch(Plane.XZ):
            with Locations(Location((0, 0, 0), (0, 0, 270))):
                Circle(SKETCH5_R)
        cut_extrude2 = extrude(amount=-CUT_EXTRUDE2_DEPTH, mode=Mode.SUBTRACT)

    # Mirror1: Boss-Extrude1, Cut-Extrude1, Boss-Extrude2, Boss-Extrude3, Cut-Extrude2 across plane
    with SkipClean():  # the faces are left unmerged after this step: merging them gives an invalid solid
        add(boss_extrude1.mirror(Plane.ZX))
        add(cut_extrude1.mirror(Plane.ZX), mode=Mode.SUBTRACT)
        add(boss_extrude2.mirror(Plane.ZX))
        add(boss_extrude3.mirror(Plane.ZX))
        add(cut_extrude2.mirror(Plane.ZX), mode=Mode.SUBTRACT)


solid = part.part
